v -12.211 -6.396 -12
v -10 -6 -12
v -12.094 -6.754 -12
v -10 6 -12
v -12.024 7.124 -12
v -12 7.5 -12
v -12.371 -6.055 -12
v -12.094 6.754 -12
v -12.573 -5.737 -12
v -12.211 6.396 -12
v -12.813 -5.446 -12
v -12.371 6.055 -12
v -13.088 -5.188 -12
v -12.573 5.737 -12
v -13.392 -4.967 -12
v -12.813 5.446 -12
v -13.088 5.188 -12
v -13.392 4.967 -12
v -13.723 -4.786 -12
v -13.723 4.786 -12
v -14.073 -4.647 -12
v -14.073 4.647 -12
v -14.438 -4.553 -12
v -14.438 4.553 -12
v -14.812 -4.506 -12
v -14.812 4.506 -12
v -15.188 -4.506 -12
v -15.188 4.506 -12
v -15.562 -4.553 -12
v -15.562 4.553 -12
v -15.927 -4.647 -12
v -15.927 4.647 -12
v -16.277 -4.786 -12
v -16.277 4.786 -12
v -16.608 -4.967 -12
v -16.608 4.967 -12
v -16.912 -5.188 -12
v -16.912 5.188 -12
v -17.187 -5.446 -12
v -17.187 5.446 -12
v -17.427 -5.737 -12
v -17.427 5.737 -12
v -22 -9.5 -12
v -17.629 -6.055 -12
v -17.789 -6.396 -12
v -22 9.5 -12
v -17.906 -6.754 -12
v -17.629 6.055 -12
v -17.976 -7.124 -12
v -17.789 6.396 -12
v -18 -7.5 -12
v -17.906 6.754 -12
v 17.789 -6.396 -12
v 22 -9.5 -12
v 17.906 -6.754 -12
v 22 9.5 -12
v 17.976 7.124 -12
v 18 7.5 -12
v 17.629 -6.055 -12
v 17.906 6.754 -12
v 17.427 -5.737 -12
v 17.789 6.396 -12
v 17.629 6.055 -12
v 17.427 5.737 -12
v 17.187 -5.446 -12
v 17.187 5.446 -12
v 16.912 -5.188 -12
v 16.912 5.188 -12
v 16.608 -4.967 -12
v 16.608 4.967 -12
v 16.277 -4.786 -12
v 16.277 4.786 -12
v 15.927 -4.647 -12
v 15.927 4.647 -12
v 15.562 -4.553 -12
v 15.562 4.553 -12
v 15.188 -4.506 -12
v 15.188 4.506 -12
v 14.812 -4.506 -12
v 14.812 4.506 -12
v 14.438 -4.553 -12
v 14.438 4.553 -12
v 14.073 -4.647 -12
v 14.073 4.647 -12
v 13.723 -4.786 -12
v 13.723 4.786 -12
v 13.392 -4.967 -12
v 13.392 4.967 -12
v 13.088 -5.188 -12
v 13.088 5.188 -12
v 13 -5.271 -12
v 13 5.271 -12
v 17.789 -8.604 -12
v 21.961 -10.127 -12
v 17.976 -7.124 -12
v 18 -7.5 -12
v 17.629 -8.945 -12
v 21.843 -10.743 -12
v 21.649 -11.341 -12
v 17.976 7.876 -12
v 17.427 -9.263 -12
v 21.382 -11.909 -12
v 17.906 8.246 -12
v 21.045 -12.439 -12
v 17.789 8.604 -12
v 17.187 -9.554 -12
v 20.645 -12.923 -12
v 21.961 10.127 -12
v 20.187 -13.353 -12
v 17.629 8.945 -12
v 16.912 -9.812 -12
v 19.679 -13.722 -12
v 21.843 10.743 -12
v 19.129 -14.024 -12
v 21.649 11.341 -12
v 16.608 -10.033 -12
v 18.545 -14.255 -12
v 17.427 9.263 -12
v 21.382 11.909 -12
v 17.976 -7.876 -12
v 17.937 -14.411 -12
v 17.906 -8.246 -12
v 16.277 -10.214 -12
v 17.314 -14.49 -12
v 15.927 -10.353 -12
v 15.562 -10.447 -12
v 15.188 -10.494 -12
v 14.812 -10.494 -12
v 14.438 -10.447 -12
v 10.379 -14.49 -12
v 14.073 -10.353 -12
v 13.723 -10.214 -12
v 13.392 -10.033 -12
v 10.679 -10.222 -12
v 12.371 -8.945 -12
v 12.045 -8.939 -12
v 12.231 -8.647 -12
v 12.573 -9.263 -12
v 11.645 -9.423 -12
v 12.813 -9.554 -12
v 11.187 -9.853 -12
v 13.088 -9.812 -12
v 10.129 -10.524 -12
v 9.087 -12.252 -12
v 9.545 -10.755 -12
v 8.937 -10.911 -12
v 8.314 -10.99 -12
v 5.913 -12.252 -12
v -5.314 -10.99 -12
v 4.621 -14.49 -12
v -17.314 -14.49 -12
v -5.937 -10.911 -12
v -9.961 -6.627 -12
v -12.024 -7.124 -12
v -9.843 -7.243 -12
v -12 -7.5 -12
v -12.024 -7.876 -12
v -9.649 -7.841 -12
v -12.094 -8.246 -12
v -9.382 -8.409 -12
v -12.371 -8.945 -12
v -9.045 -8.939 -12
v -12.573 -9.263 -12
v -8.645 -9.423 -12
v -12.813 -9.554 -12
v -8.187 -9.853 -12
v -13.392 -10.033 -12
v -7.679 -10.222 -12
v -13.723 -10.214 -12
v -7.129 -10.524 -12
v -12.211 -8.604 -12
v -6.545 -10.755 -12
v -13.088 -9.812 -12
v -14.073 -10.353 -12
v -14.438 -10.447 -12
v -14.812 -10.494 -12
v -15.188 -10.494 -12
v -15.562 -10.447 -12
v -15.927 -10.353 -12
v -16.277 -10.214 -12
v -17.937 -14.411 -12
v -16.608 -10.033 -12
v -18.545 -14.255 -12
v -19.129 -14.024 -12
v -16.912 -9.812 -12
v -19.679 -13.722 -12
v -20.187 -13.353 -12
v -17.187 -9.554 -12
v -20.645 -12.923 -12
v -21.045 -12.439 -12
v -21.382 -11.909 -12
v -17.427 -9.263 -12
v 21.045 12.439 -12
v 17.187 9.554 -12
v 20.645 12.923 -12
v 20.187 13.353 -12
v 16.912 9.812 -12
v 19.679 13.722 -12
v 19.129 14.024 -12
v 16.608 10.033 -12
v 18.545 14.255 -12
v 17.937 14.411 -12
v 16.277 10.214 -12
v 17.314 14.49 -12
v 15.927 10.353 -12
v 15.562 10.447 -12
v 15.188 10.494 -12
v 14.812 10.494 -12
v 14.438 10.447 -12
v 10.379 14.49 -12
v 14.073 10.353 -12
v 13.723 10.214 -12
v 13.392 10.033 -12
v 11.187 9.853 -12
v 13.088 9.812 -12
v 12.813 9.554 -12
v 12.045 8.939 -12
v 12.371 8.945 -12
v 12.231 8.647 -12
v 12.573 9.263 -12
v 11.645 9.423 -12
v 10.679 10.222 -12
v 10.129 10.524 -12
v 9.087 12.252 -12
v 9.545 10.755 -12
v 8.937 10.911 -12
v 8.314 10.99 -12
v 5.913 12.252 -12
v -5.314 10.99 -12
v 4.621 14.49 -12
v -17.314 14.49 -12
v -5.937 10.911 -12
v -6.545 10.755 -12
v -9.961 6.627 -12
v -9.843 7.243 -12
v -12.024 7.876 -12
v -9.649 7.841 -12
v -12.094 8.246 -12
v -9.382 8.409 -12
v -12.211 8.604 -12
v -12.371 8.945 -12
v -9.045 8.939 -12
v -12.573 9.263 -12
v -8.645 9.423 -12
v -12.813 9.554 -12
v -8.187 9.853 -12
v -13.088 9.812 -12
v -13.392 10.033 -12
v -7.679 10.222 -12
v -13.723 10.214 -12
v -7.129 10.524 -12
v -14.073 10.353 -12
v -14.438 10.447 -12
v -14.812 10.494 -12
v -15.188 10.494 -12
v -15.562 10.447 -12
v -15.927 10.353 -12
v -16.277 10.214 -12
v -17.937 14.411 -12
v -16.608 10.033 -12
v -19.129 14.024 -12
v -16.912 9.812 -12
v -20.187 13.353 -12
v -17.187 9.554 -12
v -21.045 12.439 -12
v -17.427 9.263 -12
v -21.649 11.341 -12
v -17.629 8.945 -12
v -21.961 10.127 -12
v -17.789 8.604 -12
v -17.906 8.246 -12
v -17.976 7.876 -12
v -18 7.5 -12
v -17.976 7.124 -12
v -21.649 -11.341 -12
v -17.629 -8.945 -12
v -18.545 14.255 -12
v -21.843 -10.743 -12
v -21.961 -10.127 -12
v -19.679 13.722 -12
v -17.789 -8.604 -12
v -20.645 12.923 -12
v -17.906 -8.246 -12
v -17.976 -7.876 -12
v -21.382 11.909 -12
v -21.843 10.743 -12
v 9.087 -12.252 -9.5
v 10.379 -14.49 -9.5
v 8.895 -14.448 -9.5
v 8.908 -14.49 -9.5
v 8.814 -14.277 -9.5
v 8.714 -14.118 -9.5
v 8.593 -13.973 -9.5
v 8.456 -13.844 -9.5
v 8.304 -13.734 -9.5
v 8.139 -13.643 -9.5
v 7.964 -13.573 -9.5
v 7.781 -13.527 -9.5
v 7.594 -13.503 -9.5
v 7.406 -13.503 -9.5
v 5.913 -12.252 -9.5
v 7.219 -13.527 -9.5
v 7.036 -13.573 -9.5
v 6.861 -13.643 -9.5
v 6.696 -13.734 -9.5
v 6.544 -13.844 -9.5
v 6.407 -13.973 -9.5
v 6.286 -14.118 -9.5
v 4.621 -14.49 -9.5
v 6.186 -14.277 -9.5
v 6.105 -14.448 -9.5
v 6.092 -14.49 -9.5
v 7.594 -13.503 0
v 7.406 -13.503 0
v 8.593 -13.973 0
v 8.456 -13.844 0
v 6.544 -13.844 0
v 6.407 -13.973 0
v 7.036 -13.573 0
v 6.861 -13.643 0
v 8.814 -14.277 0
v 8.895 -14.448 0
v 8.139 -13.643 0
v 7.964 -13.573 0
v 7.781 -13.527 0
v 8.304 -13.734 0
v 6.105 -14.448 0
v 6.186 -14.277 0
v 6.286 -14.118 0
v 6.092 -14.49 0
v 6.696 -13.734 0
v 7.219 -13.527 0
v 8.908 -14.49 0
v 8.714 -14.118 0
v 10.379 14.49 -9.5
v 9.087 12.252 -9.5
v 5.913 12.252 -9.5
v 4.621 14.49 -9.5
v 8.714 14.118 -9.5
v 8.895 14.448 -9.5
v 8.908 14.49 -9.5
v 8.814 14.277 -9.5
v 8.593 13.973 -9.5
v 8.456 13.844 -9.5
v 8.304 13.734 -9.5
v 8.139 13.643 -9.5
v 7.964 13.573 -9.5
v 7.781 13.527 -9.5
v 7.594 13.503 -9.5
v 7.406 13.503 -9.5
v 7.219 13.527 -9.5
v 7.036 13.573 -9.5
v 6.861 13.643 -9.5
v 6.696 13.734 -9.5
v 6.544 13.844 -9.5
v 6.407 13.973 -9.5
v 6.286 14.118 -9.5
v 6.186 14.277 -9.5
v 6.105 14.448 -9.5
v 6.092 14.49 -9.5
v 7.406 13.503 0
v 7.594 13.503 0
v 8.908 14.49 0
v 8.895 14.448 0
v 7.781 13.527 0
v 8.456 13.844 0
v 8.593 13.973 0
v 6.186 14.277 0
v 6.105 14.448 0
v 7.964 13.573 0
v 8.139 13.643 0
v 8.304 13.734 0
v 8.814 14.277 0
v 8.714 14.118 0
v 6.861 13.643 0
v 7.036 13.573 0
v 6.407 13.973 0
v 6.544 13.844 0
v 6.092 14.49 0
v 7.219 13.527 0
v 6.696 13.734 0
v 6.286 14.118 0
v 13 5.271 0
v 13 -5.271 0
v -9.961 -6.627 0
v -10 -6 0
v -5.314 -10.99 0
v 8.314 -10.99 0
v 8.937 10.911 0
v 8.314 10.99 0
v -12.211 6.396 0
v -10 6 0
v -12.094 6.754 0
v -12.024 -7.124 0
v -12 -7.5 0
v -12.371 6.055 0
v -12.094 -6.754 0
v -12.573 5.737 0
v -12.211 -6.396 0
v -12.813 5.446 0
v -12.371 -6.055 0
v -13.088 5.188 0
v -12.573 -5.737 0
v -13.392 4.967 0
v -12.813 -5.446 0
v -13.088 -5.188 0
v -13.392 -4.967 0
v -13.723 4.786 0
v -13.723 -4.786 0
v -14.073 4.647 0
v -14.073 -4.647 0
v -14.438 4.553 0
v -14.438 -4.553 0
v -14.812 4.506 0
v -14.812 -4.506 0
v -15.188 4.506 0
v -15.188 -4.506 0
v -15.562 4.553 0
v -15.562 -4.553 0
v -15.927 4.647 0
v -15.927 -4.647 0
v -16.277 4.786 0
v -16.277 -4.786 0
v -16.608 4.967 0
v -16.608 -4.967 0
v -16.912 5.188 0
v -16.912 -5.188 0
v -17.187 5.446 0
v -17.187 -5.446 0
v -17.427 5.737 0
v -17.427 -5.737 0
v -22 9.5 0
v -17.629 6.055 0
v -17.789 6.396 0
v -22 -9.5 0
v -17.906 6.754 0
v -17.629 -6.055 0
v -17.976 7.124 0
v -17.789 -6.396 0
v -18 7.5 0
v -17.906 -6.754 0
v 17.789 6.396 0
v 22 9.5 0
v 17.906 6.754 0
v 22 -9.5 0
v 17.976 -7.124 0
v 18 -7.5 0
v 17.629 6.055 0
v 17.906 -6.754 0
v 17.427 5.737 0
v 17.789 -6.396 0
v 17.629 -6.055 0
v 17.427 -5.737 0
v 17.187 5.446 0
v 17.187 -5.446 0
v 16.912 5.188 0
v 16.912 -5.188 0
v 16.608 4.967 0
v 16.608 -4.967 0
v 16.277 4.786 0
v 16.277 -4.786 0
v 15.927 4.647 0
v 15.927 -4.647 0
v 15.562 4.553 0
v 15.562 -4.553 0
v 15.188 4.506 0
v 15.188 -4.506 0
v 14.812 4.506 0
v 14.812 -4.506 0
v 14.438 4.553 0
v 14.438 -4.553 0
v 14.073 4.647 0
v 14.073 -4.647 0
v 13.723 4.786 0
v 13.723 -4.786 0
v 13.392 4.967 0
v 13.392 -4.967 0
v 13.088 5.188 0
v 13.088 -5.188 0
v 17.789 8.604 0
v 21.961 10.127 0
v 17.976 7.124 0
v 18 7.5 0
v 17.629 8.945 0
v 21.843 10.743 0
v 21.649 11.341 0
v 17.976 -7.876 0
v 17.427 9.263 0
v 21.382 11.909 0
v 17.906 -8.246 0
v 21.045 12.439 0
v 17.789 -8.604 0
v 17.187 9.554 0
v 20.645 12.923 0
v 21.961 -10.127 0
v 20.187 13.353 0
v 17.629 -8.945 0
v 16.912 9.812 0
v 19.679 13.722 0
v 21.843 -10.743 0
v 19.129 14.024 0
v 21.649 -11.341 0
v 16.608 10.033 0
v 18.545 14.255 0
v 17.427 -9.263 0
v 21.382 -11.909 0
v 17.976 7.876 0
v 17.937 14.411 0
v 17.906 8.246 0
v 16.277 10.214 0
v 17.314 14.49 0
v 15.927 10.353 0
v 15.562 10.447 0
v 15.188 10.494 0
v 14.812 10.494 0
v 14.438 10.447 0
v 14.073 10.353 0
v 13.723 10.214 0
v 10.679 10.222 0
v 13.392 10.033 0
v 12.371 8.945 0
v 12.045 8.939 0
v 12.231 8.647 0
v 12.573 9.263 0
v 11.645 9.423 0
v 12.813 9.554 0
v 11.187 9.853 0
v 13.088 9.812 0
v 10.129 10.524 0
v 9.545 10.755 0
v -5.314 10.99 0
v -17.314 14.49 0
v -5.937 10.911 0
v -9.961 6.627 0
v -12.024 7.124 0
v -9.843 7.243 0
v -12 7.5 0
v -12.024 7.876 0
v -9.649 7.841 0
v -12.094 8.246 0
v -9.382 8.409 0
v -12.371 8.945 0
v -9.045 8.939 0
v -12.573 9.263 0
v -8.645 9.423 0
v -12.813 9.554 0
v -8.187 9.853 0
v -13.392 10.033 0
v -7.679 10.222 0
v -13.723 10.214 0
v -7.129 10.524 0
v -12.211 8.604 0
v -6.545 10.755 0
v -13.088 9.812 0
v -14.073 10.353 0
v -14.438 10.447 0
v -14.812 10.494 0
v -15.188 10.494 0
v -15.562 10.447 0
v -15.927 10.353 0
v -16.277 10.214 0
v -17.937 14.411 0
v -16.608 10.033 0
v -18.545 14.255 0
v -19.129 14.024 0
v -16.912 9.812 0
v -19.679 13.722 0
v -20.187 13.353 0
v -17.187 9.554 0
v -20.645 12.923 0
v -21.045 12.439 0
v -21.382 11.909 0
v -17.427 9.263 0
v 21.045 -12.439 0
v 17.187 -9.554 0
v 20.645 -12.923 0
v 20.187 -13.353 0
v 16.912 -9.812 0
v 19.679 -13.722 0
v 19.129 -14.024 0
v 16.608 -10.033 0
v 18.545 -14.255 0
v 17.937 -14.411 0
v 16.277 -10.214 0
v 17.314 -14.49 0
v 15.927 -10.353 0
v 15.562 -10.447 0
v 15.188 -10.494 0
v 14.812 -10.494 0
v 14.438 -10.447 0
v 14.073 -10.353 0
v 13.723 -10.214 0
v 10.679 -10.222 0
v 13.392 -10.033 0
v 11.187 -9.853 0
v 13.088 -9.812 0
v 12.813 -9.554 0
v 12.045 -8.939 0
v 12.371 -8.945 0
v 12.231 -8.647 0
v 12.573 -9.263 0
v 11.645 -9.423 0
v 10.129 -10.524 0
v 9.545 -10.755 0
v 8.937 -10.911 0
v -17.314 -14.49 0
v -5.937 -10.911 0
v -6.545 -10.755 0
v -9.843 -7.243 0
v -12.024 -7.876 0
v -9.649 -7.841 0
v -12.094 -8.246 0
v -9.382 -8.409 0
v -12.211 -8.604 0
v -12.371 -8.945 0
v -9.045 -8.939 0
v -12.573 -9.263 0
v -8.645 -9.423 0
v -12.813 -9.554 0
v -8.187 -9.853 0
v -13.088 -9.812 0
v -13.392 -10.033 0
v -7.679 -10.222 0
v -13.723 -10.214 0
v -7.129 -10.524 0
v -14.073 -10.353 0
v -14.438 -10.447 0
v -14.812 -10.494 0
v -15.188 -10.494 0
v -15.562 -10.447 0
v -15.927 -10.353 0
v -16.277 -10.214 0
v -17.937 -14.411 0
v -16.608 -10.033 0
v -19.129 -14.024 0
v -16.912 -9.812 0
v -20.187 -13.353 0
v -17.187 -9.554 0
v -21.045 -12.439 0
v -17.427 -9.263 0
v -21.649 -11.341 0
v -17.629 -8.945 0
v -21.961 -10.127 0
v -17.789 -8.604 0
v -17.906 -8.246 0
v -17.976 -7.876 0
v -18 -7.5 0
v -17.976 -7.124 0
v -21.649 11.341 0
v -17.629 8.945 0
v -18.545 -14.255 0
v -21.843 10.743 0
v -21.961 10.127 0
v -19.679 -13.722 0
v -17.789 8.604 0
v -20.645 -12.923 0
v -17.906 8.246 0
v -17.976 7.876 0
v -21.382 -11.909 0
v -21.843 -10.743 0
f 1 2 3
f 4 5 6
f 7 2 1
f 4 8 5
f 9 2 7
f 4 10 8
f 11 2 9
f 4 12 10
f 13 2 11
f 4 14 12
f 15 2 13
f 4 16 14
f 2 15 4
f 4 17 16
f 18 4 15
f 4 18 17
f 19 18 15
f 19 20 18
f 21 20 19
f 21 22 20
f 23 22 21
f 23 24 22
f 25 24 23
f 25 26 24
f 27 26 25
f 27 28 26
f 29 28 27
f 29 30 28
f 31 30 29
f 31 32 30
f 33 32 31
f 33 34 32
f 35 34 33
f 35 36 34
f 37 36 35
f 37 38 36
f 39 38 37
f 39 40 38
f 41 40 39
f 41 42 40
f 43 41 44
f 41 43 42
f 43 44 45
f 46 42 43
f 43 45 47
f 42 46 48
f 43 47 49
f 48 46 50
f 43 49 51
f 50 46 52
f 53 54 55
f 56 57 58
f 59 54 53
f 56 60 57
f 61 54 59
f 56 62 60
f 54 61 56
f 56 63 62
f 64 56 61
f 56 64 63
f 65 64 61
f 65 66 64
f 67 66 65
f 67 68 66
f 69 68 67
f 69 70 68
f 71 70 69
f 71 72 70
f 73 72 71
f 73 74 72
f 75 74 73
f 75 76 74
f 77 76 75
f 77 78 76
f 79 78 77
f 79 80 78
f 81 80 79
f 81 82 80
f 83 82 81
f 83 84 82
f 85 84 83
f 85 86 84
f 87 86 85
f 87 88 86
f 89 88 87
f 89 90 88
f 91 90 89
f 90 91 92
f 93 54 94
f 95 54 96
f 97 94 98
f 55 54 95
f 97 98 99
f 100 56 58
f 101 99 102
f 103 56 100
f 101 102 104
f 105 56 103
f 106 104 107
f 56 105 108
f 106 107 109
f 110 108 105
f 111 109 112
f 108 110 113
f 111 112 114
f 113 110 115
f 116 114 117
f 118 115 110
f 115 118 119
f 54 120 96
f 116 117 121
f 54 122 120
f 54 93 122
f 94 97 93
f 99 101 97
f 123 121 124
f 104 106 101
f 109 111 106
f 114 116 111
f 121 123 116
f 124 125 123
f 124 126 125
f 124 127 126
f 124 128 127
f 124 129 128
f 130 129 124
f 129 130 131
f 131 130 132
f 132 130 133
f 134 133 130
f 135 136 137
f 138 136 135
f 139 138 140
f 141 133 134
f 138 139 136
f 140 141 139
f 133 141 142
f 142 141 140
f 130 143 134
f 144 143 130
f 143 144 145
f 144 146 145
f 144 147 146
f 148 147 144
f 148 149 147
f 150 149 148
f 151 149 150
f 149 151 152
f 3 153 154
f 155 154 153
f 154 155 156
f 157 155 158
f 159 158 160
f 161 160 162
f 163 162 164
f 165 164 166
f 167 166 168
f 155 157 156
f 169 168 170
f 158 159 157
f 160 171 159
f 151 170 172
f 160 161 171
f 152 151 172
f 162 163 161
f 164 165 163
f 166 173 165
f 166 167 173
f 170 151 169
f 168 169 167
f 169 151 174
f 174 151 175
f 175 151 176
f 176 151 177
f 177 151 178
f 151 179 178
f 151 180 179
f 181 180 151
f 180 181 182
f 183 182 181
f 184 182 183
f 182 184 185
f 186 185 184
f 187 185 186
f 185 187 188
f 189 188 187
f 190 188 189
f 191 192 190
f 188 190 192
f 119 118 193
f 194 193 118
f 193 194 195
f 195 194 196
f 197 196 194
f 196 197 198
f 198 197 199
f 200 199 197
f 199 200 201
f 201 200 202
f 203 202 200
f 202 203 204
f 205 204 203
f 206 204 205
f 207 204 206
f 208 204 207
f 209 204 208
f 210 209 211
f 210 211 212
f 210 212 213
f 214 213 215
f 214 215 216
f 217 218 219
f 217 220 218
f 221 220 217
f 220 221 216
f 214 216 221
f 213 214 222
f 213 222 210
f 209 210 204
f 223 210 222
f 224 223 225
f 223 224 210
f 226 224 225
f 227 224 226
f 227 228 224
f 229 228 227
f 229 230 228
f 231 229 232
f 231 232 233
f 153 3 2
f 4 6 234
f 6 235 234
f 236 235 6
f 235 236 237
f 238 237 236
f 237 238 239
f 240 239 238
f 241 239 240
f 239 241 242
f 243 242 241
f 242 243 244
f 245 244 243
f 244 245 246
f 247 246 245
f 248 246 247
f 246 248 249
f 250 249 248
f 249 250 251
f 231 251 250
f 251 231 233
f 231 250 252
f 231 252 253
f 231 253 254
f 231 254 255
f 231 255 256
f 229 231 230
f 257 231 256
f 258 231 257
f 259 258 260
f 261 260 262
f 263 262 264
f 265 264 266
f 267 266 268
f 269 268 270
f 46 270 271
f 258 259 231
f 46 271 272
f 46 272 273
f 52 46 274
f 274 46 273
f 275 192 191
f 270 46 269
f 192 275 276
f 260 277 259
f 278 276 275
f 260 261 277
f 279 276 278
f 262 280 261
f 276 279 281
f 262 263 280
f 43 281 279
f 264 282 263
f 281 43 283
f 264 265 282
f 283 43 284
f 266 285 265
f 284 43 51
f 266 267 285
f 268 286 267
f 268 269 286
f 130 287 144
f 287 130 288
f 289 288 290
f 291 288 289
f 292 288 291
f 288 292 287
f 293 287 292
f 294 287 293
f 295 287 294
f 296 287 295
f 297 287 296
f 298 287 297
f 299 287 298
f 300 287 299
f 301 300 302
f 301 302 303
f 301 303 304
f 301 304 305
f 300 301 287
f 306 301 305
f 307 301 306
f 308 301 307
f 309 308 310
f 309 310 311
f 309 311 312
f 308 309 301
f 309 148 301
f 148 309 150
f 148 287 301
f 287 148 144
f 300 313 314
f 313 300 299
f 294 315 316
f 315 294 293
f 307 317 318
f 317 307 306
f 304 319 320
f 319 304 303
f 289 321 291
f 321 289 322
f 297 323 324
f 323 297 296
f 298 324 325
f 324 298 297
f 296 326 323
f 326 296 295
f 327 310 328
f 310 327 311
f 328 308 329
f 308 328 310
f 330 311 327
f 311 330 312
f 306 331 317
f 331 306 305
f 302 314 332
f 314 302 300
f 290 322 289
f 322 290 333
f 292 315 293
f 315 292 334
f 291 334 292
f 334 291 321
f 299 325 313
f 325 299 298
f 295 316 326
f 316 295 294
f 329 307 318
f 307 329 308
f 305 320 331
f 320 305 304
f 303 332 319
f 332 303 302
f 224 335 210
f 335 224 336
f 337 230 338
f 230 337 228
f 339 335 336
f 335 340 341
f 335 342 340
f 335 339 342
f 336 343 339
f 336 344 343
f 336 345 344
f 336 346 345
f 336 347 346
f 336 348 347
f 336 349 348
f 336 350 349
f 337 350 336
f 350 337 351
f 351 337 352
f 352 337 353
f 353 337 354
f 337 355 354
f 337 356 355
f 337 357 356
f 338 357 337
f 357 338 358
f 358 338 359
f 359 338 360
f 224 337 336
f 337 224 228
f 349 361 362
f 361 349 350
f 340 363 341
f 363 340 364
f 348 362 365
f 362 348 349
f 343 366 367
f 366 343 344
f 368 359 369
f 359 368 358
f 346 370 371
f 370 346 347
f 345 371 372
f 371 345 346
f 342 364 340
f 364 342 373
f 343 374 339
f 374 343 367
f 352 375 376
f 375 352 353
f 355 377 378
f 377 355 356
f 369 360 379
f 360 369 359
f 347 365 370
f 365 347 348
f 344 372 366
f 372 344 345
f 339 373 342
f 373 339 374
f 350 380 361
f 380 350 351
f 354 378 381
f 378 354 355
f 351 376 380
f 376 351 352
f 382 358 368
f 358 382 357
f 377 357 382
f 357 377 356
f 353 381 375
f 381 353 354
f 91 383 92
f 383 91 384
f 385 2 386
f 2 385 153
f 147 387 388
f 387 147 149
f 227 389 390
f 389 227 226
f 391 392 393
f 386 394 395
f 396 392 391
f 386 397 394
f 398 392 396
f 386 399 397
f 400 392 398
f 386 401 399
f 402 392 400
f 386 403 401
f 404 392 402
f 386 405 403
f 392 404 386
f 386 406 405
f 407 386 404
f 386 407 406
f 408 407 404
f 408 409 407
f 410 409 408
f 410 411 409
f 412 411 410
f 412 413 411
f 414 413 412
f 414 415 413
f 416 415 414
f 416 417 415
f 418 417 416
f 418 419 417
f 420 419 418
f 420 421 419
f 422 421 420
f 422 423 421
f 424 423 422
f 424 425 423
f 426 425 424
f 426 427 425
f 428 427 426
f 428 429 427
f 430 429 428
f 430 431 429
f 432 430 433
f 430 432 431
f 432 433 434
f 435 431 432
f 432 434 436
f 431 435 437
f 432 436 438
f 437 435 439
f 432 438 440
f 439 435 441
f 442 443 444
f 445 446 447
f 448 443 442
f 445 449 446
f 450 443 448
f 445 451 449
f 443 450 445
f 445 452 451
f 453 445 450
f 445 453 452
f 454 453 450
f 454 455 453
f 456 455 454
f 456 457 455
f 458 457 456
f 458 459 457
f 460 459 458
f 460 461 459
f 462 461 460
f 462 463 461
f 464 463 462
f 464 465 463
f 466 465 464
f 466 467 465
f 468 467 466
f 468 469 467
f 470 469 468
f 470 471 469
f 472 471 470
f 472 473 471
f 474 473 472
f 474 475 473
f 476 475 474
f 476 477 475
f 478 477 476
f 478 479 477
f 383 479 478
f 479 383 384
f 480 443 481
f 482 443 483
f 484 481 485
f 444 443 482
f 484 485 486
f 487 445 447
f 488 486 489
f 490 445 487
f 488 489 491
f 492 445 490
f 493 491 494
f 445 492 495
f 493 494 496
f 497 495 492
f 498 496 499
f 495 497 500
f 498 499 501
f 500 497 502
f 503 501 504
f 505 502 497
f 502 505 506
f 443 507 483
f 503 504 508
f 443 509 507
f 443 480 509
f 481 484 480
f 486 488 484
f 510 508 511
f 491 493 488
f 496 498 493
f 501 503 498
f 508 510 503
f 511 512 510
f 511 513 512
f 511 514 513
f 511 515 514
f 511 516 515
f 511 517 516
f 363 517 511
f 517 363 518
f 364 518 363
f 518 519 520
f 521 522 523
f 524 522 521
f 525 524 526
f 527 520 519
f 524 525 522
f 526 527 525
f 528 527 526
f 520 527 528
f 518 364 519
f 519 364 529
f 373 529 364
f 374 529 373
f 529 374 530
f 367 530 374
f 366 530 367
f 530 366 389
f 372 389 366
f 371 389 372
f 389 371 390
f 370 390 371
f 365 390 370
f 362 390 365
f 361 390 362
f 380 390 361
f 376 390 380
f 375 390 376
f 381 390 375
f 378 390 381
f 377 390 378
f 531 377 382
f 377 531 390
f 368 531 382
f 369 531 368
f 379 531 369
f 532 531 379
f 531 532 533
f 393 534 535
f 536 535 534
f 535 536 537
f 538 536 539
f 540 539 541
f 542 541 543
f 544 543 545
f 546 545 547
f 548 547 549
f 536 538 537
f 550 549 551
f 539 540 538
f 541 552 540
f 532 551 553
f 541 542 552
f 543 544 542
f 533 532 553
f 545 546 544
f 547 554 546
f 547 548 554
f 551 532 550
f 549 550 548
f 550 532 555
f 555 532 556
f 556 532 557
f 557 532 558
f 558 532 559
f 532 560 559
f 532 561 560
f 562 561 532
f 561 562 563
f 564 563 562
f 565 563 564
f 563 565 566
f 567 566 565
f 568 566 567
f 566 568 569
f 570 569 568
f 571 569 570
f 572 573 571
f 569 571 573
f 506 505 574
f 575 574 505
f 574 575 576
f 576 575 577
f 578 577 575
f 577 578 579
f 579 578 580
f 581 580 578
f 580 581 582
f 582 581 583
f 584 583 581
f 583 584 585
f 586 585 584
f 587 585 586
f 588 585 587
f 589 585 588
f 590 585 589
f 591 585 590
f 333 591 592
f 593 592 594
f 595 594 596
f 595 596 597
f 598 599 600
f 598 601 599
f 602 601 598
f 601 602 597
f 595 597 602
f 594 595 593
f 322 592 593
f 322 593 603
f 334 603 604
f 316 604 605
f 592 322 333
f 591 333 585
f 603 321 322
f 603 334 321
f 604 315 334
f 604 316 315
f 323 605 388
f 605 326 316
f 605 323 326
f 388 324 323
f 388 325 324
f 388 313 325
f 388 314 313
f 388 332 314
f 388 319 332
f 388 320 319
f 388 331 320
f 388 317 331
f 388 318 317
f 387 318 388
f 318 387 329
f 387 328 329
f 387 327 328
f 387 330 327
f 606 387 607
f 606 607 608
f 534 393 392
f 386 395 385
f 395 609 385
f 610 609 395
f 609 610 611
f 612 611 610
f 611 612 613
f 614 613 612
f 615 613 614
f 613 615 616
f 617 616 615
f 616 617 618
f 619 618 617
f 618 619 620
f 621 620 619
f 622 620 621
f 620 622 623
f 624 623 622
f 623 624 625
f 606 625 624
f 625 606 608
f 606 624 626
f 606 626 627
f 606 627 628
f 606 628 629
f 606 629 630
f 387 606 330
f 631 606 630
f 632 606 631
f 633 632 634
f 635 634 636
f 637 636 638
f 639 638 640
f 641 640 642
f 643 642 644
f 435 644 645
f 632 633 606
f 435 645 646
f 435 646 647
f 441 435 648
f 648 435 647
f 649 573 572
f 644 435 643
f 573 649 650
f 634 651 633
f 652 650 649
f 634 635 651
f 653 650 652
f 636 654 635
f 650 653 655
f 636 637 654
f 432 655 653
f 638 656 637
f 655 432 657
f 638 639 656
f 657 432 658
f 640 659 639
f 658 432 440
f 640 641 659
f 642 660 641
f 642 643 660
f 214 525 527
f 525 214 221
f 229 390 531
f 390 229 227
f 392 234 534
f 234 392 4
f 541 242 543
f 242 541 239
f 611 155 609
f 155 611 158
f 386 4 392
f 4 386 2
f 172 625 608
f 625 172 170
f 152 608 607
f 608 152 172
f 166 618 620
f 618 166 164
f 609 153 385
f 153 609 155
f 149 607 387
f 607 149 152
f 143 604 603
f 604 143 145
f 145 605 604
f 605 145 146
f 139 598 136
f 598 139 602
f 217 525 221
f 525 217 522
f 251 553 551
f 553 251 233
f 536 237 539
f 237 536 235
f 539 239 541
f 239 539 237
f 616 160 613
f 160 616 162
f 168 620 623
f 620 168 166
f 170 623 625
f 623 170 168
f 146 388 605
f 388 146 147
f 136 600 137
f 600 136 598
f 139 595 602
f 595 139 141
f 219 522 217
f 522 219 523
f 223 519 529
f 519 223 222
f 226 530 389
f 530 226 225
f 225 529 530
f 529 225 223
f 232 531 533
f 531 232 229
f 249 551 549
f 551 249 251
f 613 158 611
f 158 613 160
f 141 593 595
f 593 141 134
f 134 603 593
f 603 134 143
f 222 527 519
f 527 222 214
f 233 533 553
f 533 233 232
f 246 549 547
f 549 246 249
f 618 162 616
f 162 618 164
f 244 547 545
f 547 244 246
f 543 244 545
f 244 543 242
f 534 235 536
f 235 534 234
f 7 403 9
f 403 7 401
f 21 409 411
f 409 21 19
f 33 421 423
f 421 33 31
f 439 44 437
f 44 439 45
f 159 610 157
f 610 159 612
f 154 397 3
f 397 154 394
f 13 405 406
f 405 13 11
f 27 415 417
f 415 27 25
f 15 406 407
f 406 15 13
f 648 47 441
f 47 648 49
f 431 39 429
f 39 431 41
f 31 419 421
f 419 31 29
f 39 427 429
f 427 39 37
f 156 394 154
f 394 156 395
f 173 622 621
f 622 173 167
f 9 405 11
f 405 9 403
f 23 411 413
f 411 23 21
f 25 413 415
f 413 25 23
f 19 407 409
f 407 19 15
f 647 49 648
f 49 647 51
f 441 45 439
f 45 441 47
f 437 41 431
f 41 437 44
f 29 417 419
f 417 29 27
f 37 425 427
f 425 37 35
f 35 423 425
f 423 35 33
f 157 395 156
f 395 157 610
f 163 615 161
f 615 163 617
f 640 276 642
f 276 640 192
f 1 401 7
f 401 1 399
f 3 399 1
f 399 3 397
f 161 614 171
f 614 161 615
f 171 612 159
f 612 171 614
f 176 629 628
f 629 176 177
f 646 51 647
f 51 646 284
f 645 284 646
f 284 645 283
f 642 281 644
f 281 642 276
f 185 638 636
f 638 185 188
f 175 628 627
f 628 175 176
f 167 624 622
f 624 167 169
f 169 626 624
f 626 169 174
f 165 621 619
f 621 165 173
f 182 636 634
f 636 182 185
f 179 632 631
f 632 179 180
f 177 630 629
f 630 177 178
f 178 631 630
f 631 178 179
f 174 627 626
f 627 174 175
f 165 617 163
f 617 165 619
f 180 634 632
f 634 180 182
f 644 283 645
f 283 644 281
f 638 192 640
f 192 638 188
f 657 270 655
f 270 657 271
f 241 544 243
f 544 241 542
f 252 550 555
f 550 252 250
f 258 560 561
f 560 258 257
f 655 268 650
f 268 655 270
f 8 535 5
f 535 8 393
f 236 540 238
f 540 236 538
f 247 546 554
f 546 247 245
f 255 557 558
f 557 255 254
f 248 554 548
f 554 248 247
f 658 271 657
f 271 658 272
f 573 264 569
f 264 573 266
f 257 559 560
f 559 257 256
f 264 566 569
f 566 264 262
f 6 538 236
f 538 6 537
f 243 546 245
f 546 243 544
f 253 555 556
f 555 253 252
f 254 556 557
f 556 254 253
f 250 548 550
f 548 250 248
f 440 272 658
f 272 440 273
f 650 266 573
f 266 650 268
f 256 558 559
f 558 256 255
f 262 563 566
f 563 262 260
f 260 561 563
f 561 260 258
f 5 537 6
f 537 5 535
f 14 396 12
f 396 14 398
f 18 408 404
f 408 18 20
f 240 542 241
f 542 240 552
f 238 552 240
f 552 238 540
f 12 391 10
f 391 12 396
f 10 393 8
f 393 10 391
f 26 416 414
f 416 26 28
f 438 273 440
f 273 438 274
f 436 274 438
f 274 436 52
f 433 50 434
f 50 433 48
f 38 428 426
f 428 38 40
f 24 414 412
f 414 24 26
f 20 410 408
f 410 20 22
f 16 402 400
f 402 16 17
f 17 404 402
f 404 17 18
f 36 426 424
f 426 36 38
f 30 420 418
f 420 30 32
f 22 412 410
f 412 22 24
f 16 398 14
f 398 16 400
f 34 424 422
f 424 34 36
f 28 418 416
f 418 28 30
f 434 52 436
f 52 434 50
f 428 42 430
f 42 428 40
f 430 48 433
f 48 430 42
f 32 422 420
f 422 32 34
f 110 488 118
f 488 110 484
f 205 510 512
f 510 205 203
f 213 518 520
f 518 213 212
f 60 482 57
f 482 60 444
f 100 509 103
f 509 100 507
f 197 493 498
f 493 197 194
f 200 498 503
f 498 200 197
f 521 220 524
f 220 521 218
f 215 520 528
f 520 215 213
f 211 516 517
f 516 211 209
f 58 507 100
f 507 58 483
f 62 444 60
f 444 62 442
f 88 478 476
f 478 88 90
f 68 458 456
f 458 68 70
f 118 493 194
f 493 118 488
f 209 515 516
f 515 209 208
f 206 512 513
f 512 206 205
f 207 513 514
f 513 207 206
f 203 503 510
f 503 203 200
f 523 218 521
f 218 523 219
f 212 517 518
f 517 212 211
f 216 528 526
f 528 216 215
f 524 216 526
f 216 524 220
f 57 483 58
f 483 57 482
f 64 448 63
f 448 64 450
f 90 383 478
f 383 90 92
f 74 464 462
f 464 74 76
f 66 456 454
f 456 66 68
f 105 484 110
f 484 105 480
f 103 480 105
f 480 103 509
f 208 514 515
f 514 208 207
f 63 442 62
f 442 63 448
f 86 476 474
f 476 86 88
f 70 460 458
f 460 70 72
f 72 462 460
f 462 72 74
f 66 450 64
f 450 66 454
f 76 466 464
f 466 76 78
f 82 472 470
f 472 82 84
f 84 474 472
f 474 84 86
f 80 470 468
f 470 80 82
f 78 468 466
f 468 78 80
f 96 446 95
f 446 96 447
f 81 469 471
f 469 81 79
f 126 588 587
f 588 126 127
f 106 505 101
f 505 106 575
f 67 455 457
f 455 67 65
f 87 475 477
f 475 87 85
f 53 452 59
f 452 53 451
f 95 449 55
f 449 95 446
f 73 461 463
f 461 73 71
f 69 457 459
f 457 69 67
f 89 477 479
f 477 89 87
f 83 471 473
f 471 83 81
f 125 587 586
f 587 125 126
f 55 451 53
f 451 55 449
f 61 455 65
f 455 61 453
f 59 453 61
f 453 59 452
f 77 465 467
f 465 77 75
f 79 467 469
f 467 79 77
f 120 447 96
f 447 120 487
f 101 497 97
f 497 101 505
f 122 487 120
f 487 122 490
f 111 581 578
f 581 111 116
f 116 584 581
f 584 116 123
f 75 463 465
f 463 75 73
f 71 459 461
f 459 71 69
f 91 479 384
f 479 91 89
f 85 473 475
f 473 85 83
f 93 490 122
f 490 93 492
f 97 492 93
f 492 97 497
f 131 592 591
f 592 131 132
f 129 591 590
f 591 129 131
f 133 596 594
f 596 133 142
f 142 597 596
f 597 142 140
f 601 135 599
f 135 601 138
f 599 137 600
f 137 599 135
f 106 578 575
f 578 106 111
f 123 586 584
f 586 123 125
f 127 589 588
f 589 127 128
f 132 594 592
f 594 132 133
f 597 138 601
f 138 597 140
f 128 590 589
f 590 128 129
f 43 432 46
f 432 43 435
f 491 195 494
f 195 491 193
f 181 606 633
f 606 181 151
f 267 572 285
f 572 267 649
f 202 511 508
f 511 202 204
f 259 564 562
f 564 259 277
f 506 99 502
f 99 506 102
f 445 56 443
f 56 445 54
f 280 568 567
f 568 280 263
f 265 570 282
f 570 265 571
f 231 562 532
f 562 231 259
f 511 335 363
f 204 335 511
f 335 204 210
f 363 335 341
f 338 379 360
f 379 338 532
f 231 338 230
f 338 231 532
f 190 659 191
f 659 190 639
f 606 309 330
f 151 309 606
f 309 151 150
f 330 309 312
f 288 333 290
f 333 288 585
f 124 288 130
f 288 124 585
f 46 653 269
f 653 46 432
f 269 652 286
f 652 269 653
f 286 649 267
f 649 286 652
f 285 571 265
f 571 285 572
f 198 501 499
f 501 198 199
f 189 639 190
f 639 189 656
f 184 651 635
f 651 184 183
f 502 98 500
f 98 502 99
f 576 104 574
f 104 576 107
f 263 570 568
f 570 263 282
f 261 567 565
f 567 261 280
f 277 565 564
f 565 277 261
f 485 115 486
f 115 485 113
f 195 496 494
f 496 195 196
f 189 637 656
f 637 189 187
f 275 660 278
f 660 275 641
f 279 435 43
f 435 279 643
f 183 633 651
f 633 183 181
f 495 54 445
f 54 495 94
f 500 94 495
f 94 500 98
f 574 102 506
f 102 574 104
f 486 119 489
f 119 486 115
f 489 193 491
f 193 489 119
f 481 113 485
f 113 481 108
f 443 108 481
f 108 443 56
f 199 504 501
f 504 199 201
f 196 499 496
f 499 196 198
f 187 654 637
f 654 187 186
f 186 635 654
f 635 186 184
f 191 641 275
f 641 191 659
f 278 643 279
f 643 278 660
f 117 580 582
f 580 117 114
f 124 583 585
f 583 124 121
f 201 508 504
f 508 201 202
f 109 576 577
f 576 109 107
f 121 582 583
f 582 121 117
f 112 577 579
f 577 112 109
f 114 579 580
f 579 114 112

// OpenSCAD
$fn = 50;


difference() {
	union() {
		translate(v = [0, 0, -12]) {
			hull() {
				translate(v = [-17.0000000000, 9.5000000000, 0]) {
					cylinder(h = 12, r = 5);
				}
				translate(v = [17.0000000000, 9.5000000000, 0]) {
					cylinder(h = 12, r = 5);
				}
				translate(v = [-17.0000000000, -9.5000000000, 0]) {
					cylinder(h = 12, r = 5);
				}
				translate(v = [17.0000000000, -9.5000000000, 0]) {
					cylinder(h = 12, r = 5);
				}
			}
		}
	}
	union() {
		translate(v = [7.5000000000, -15, -12]) {
			rotate(a = [0, 0, 0]) {
				difference() {
					union() {
						linear_extrude(height = 2.5000000000) {
							polygon(points = [[3.1735000000, 0.0000000000], [1.5867500000, 2.7483316189], [-1.5867500000, 2.7483316189], [-3.1735000000, 0.0000000000], [-1.5867500000, -2.7483316189], [1.5867500000, -2.7483316189]]);
						}
						translate(v = [0, 0, -50.0000000000]) {
							cylinder(h = 100, r = 1.5000000000);
						}
						translate(v = [0, 0, -50.0000000000]) {
							cylinder(h = 100, r = 1.5000000000);
						}
						translate(v = [0, 0, -50.0000000000]) {
							cylinder(h = 100, r = 1.5000000000);
						}
					}
					union();
				}
			}
		}
		translate(v = [7.5000000000, 15, -12]) {
			rotate(a = [0, 0, 0]) {
				difference() {
					union() {
						linear_extrude(height = 2.5000000000) {
							polygon(points = [[3.1735000000, 0.0000000000], [1.5867500000, 2.7483316189], [-1.5867500000, 2.7483316189], [-3.1735000000, 0.0000000000], [-1.5867500000, -2.7483316189], [1.5867500000, -2.7483316189]]);
						}
						translate(v = [0, 0, -50.0000000000]) {
							cylinder(h = 100, r = 1.5000000000);
						}
						translate(v = [0, 0, -50.0000000000]) {
							cylinder(h = 100, r = 1.5000000000);
						}
						translate(v = [0, 0, -50.0000000000]) {
							cylinder(h = 100, r = 1.5000000000);
						}
					}
					union();
				}
			}
		}
		translate(v = [0, 0, -3]) {
			rotate(a = [0, 0, 180]) {
				difference() {
					union() {
						translate(v = [-1.5000000000, 0, -9]) {
							#hull() {
								translate(v = [-6.5000000000, 6.0000000000, 0]) {
									cylinder(h = 12, r = 5);
								}
								translate(v = [6.5000000000, 6.0000000000, 0]) {
									cylinder(h = 12, r = 5);
								}
								translate(v = [-6.5000000000, -6.0000000000, 0]) {
									cylinder(h = 12, r = 5);
								}
								translate(v = [6.5000000000, -6.0000000000, 0]) {
									cylinder(h = 12, r = 5);
								}
							}
						}
					}
					union();
				}
			}
		}
		translate(v = [-15.0000000000, -7.5000000000, -50.0000000000]) {
			cylinder(h = 100, r = 3.0000000000);
		}
		translate(v = [-15.0000000000, 7.5000000000, -50.0000000000]) {
			cylinder(h = 100, r = 3.0000000000);
		}
		translate(v = [-15.0000000000, 7.5000000000, -50.0000000000]) {
			cylinder(h = 100, r = 3.0000000000);
		}
		translate(v = [0.0000000000, 7.5000000000, -50.0000000000]) {
			cylinder(h = 100, r = 3.0000000000);
		}
		translate(v = [15.0000000000, 7.5000000000, -50.0000000000]) {
			cylinder(h = 100, r = 3.0000000000);
		}
		translate(v = [-15.0000000000, -7.5000000000, -50.0000000000]) {
			cylinder(h = 100, r = 3.0000000000);
		}
		translate(v = [0.0000000000, -7.5000000000, -50.0000000000]) {
			cylinder(h = 100, r = 3.0000000000);
		}
		translate(v = [15.0000000000, -7.5000000000, -50.0000000000]) {
			cylinder(h = 100, r = 3.0000000000);
		}
	}
}
